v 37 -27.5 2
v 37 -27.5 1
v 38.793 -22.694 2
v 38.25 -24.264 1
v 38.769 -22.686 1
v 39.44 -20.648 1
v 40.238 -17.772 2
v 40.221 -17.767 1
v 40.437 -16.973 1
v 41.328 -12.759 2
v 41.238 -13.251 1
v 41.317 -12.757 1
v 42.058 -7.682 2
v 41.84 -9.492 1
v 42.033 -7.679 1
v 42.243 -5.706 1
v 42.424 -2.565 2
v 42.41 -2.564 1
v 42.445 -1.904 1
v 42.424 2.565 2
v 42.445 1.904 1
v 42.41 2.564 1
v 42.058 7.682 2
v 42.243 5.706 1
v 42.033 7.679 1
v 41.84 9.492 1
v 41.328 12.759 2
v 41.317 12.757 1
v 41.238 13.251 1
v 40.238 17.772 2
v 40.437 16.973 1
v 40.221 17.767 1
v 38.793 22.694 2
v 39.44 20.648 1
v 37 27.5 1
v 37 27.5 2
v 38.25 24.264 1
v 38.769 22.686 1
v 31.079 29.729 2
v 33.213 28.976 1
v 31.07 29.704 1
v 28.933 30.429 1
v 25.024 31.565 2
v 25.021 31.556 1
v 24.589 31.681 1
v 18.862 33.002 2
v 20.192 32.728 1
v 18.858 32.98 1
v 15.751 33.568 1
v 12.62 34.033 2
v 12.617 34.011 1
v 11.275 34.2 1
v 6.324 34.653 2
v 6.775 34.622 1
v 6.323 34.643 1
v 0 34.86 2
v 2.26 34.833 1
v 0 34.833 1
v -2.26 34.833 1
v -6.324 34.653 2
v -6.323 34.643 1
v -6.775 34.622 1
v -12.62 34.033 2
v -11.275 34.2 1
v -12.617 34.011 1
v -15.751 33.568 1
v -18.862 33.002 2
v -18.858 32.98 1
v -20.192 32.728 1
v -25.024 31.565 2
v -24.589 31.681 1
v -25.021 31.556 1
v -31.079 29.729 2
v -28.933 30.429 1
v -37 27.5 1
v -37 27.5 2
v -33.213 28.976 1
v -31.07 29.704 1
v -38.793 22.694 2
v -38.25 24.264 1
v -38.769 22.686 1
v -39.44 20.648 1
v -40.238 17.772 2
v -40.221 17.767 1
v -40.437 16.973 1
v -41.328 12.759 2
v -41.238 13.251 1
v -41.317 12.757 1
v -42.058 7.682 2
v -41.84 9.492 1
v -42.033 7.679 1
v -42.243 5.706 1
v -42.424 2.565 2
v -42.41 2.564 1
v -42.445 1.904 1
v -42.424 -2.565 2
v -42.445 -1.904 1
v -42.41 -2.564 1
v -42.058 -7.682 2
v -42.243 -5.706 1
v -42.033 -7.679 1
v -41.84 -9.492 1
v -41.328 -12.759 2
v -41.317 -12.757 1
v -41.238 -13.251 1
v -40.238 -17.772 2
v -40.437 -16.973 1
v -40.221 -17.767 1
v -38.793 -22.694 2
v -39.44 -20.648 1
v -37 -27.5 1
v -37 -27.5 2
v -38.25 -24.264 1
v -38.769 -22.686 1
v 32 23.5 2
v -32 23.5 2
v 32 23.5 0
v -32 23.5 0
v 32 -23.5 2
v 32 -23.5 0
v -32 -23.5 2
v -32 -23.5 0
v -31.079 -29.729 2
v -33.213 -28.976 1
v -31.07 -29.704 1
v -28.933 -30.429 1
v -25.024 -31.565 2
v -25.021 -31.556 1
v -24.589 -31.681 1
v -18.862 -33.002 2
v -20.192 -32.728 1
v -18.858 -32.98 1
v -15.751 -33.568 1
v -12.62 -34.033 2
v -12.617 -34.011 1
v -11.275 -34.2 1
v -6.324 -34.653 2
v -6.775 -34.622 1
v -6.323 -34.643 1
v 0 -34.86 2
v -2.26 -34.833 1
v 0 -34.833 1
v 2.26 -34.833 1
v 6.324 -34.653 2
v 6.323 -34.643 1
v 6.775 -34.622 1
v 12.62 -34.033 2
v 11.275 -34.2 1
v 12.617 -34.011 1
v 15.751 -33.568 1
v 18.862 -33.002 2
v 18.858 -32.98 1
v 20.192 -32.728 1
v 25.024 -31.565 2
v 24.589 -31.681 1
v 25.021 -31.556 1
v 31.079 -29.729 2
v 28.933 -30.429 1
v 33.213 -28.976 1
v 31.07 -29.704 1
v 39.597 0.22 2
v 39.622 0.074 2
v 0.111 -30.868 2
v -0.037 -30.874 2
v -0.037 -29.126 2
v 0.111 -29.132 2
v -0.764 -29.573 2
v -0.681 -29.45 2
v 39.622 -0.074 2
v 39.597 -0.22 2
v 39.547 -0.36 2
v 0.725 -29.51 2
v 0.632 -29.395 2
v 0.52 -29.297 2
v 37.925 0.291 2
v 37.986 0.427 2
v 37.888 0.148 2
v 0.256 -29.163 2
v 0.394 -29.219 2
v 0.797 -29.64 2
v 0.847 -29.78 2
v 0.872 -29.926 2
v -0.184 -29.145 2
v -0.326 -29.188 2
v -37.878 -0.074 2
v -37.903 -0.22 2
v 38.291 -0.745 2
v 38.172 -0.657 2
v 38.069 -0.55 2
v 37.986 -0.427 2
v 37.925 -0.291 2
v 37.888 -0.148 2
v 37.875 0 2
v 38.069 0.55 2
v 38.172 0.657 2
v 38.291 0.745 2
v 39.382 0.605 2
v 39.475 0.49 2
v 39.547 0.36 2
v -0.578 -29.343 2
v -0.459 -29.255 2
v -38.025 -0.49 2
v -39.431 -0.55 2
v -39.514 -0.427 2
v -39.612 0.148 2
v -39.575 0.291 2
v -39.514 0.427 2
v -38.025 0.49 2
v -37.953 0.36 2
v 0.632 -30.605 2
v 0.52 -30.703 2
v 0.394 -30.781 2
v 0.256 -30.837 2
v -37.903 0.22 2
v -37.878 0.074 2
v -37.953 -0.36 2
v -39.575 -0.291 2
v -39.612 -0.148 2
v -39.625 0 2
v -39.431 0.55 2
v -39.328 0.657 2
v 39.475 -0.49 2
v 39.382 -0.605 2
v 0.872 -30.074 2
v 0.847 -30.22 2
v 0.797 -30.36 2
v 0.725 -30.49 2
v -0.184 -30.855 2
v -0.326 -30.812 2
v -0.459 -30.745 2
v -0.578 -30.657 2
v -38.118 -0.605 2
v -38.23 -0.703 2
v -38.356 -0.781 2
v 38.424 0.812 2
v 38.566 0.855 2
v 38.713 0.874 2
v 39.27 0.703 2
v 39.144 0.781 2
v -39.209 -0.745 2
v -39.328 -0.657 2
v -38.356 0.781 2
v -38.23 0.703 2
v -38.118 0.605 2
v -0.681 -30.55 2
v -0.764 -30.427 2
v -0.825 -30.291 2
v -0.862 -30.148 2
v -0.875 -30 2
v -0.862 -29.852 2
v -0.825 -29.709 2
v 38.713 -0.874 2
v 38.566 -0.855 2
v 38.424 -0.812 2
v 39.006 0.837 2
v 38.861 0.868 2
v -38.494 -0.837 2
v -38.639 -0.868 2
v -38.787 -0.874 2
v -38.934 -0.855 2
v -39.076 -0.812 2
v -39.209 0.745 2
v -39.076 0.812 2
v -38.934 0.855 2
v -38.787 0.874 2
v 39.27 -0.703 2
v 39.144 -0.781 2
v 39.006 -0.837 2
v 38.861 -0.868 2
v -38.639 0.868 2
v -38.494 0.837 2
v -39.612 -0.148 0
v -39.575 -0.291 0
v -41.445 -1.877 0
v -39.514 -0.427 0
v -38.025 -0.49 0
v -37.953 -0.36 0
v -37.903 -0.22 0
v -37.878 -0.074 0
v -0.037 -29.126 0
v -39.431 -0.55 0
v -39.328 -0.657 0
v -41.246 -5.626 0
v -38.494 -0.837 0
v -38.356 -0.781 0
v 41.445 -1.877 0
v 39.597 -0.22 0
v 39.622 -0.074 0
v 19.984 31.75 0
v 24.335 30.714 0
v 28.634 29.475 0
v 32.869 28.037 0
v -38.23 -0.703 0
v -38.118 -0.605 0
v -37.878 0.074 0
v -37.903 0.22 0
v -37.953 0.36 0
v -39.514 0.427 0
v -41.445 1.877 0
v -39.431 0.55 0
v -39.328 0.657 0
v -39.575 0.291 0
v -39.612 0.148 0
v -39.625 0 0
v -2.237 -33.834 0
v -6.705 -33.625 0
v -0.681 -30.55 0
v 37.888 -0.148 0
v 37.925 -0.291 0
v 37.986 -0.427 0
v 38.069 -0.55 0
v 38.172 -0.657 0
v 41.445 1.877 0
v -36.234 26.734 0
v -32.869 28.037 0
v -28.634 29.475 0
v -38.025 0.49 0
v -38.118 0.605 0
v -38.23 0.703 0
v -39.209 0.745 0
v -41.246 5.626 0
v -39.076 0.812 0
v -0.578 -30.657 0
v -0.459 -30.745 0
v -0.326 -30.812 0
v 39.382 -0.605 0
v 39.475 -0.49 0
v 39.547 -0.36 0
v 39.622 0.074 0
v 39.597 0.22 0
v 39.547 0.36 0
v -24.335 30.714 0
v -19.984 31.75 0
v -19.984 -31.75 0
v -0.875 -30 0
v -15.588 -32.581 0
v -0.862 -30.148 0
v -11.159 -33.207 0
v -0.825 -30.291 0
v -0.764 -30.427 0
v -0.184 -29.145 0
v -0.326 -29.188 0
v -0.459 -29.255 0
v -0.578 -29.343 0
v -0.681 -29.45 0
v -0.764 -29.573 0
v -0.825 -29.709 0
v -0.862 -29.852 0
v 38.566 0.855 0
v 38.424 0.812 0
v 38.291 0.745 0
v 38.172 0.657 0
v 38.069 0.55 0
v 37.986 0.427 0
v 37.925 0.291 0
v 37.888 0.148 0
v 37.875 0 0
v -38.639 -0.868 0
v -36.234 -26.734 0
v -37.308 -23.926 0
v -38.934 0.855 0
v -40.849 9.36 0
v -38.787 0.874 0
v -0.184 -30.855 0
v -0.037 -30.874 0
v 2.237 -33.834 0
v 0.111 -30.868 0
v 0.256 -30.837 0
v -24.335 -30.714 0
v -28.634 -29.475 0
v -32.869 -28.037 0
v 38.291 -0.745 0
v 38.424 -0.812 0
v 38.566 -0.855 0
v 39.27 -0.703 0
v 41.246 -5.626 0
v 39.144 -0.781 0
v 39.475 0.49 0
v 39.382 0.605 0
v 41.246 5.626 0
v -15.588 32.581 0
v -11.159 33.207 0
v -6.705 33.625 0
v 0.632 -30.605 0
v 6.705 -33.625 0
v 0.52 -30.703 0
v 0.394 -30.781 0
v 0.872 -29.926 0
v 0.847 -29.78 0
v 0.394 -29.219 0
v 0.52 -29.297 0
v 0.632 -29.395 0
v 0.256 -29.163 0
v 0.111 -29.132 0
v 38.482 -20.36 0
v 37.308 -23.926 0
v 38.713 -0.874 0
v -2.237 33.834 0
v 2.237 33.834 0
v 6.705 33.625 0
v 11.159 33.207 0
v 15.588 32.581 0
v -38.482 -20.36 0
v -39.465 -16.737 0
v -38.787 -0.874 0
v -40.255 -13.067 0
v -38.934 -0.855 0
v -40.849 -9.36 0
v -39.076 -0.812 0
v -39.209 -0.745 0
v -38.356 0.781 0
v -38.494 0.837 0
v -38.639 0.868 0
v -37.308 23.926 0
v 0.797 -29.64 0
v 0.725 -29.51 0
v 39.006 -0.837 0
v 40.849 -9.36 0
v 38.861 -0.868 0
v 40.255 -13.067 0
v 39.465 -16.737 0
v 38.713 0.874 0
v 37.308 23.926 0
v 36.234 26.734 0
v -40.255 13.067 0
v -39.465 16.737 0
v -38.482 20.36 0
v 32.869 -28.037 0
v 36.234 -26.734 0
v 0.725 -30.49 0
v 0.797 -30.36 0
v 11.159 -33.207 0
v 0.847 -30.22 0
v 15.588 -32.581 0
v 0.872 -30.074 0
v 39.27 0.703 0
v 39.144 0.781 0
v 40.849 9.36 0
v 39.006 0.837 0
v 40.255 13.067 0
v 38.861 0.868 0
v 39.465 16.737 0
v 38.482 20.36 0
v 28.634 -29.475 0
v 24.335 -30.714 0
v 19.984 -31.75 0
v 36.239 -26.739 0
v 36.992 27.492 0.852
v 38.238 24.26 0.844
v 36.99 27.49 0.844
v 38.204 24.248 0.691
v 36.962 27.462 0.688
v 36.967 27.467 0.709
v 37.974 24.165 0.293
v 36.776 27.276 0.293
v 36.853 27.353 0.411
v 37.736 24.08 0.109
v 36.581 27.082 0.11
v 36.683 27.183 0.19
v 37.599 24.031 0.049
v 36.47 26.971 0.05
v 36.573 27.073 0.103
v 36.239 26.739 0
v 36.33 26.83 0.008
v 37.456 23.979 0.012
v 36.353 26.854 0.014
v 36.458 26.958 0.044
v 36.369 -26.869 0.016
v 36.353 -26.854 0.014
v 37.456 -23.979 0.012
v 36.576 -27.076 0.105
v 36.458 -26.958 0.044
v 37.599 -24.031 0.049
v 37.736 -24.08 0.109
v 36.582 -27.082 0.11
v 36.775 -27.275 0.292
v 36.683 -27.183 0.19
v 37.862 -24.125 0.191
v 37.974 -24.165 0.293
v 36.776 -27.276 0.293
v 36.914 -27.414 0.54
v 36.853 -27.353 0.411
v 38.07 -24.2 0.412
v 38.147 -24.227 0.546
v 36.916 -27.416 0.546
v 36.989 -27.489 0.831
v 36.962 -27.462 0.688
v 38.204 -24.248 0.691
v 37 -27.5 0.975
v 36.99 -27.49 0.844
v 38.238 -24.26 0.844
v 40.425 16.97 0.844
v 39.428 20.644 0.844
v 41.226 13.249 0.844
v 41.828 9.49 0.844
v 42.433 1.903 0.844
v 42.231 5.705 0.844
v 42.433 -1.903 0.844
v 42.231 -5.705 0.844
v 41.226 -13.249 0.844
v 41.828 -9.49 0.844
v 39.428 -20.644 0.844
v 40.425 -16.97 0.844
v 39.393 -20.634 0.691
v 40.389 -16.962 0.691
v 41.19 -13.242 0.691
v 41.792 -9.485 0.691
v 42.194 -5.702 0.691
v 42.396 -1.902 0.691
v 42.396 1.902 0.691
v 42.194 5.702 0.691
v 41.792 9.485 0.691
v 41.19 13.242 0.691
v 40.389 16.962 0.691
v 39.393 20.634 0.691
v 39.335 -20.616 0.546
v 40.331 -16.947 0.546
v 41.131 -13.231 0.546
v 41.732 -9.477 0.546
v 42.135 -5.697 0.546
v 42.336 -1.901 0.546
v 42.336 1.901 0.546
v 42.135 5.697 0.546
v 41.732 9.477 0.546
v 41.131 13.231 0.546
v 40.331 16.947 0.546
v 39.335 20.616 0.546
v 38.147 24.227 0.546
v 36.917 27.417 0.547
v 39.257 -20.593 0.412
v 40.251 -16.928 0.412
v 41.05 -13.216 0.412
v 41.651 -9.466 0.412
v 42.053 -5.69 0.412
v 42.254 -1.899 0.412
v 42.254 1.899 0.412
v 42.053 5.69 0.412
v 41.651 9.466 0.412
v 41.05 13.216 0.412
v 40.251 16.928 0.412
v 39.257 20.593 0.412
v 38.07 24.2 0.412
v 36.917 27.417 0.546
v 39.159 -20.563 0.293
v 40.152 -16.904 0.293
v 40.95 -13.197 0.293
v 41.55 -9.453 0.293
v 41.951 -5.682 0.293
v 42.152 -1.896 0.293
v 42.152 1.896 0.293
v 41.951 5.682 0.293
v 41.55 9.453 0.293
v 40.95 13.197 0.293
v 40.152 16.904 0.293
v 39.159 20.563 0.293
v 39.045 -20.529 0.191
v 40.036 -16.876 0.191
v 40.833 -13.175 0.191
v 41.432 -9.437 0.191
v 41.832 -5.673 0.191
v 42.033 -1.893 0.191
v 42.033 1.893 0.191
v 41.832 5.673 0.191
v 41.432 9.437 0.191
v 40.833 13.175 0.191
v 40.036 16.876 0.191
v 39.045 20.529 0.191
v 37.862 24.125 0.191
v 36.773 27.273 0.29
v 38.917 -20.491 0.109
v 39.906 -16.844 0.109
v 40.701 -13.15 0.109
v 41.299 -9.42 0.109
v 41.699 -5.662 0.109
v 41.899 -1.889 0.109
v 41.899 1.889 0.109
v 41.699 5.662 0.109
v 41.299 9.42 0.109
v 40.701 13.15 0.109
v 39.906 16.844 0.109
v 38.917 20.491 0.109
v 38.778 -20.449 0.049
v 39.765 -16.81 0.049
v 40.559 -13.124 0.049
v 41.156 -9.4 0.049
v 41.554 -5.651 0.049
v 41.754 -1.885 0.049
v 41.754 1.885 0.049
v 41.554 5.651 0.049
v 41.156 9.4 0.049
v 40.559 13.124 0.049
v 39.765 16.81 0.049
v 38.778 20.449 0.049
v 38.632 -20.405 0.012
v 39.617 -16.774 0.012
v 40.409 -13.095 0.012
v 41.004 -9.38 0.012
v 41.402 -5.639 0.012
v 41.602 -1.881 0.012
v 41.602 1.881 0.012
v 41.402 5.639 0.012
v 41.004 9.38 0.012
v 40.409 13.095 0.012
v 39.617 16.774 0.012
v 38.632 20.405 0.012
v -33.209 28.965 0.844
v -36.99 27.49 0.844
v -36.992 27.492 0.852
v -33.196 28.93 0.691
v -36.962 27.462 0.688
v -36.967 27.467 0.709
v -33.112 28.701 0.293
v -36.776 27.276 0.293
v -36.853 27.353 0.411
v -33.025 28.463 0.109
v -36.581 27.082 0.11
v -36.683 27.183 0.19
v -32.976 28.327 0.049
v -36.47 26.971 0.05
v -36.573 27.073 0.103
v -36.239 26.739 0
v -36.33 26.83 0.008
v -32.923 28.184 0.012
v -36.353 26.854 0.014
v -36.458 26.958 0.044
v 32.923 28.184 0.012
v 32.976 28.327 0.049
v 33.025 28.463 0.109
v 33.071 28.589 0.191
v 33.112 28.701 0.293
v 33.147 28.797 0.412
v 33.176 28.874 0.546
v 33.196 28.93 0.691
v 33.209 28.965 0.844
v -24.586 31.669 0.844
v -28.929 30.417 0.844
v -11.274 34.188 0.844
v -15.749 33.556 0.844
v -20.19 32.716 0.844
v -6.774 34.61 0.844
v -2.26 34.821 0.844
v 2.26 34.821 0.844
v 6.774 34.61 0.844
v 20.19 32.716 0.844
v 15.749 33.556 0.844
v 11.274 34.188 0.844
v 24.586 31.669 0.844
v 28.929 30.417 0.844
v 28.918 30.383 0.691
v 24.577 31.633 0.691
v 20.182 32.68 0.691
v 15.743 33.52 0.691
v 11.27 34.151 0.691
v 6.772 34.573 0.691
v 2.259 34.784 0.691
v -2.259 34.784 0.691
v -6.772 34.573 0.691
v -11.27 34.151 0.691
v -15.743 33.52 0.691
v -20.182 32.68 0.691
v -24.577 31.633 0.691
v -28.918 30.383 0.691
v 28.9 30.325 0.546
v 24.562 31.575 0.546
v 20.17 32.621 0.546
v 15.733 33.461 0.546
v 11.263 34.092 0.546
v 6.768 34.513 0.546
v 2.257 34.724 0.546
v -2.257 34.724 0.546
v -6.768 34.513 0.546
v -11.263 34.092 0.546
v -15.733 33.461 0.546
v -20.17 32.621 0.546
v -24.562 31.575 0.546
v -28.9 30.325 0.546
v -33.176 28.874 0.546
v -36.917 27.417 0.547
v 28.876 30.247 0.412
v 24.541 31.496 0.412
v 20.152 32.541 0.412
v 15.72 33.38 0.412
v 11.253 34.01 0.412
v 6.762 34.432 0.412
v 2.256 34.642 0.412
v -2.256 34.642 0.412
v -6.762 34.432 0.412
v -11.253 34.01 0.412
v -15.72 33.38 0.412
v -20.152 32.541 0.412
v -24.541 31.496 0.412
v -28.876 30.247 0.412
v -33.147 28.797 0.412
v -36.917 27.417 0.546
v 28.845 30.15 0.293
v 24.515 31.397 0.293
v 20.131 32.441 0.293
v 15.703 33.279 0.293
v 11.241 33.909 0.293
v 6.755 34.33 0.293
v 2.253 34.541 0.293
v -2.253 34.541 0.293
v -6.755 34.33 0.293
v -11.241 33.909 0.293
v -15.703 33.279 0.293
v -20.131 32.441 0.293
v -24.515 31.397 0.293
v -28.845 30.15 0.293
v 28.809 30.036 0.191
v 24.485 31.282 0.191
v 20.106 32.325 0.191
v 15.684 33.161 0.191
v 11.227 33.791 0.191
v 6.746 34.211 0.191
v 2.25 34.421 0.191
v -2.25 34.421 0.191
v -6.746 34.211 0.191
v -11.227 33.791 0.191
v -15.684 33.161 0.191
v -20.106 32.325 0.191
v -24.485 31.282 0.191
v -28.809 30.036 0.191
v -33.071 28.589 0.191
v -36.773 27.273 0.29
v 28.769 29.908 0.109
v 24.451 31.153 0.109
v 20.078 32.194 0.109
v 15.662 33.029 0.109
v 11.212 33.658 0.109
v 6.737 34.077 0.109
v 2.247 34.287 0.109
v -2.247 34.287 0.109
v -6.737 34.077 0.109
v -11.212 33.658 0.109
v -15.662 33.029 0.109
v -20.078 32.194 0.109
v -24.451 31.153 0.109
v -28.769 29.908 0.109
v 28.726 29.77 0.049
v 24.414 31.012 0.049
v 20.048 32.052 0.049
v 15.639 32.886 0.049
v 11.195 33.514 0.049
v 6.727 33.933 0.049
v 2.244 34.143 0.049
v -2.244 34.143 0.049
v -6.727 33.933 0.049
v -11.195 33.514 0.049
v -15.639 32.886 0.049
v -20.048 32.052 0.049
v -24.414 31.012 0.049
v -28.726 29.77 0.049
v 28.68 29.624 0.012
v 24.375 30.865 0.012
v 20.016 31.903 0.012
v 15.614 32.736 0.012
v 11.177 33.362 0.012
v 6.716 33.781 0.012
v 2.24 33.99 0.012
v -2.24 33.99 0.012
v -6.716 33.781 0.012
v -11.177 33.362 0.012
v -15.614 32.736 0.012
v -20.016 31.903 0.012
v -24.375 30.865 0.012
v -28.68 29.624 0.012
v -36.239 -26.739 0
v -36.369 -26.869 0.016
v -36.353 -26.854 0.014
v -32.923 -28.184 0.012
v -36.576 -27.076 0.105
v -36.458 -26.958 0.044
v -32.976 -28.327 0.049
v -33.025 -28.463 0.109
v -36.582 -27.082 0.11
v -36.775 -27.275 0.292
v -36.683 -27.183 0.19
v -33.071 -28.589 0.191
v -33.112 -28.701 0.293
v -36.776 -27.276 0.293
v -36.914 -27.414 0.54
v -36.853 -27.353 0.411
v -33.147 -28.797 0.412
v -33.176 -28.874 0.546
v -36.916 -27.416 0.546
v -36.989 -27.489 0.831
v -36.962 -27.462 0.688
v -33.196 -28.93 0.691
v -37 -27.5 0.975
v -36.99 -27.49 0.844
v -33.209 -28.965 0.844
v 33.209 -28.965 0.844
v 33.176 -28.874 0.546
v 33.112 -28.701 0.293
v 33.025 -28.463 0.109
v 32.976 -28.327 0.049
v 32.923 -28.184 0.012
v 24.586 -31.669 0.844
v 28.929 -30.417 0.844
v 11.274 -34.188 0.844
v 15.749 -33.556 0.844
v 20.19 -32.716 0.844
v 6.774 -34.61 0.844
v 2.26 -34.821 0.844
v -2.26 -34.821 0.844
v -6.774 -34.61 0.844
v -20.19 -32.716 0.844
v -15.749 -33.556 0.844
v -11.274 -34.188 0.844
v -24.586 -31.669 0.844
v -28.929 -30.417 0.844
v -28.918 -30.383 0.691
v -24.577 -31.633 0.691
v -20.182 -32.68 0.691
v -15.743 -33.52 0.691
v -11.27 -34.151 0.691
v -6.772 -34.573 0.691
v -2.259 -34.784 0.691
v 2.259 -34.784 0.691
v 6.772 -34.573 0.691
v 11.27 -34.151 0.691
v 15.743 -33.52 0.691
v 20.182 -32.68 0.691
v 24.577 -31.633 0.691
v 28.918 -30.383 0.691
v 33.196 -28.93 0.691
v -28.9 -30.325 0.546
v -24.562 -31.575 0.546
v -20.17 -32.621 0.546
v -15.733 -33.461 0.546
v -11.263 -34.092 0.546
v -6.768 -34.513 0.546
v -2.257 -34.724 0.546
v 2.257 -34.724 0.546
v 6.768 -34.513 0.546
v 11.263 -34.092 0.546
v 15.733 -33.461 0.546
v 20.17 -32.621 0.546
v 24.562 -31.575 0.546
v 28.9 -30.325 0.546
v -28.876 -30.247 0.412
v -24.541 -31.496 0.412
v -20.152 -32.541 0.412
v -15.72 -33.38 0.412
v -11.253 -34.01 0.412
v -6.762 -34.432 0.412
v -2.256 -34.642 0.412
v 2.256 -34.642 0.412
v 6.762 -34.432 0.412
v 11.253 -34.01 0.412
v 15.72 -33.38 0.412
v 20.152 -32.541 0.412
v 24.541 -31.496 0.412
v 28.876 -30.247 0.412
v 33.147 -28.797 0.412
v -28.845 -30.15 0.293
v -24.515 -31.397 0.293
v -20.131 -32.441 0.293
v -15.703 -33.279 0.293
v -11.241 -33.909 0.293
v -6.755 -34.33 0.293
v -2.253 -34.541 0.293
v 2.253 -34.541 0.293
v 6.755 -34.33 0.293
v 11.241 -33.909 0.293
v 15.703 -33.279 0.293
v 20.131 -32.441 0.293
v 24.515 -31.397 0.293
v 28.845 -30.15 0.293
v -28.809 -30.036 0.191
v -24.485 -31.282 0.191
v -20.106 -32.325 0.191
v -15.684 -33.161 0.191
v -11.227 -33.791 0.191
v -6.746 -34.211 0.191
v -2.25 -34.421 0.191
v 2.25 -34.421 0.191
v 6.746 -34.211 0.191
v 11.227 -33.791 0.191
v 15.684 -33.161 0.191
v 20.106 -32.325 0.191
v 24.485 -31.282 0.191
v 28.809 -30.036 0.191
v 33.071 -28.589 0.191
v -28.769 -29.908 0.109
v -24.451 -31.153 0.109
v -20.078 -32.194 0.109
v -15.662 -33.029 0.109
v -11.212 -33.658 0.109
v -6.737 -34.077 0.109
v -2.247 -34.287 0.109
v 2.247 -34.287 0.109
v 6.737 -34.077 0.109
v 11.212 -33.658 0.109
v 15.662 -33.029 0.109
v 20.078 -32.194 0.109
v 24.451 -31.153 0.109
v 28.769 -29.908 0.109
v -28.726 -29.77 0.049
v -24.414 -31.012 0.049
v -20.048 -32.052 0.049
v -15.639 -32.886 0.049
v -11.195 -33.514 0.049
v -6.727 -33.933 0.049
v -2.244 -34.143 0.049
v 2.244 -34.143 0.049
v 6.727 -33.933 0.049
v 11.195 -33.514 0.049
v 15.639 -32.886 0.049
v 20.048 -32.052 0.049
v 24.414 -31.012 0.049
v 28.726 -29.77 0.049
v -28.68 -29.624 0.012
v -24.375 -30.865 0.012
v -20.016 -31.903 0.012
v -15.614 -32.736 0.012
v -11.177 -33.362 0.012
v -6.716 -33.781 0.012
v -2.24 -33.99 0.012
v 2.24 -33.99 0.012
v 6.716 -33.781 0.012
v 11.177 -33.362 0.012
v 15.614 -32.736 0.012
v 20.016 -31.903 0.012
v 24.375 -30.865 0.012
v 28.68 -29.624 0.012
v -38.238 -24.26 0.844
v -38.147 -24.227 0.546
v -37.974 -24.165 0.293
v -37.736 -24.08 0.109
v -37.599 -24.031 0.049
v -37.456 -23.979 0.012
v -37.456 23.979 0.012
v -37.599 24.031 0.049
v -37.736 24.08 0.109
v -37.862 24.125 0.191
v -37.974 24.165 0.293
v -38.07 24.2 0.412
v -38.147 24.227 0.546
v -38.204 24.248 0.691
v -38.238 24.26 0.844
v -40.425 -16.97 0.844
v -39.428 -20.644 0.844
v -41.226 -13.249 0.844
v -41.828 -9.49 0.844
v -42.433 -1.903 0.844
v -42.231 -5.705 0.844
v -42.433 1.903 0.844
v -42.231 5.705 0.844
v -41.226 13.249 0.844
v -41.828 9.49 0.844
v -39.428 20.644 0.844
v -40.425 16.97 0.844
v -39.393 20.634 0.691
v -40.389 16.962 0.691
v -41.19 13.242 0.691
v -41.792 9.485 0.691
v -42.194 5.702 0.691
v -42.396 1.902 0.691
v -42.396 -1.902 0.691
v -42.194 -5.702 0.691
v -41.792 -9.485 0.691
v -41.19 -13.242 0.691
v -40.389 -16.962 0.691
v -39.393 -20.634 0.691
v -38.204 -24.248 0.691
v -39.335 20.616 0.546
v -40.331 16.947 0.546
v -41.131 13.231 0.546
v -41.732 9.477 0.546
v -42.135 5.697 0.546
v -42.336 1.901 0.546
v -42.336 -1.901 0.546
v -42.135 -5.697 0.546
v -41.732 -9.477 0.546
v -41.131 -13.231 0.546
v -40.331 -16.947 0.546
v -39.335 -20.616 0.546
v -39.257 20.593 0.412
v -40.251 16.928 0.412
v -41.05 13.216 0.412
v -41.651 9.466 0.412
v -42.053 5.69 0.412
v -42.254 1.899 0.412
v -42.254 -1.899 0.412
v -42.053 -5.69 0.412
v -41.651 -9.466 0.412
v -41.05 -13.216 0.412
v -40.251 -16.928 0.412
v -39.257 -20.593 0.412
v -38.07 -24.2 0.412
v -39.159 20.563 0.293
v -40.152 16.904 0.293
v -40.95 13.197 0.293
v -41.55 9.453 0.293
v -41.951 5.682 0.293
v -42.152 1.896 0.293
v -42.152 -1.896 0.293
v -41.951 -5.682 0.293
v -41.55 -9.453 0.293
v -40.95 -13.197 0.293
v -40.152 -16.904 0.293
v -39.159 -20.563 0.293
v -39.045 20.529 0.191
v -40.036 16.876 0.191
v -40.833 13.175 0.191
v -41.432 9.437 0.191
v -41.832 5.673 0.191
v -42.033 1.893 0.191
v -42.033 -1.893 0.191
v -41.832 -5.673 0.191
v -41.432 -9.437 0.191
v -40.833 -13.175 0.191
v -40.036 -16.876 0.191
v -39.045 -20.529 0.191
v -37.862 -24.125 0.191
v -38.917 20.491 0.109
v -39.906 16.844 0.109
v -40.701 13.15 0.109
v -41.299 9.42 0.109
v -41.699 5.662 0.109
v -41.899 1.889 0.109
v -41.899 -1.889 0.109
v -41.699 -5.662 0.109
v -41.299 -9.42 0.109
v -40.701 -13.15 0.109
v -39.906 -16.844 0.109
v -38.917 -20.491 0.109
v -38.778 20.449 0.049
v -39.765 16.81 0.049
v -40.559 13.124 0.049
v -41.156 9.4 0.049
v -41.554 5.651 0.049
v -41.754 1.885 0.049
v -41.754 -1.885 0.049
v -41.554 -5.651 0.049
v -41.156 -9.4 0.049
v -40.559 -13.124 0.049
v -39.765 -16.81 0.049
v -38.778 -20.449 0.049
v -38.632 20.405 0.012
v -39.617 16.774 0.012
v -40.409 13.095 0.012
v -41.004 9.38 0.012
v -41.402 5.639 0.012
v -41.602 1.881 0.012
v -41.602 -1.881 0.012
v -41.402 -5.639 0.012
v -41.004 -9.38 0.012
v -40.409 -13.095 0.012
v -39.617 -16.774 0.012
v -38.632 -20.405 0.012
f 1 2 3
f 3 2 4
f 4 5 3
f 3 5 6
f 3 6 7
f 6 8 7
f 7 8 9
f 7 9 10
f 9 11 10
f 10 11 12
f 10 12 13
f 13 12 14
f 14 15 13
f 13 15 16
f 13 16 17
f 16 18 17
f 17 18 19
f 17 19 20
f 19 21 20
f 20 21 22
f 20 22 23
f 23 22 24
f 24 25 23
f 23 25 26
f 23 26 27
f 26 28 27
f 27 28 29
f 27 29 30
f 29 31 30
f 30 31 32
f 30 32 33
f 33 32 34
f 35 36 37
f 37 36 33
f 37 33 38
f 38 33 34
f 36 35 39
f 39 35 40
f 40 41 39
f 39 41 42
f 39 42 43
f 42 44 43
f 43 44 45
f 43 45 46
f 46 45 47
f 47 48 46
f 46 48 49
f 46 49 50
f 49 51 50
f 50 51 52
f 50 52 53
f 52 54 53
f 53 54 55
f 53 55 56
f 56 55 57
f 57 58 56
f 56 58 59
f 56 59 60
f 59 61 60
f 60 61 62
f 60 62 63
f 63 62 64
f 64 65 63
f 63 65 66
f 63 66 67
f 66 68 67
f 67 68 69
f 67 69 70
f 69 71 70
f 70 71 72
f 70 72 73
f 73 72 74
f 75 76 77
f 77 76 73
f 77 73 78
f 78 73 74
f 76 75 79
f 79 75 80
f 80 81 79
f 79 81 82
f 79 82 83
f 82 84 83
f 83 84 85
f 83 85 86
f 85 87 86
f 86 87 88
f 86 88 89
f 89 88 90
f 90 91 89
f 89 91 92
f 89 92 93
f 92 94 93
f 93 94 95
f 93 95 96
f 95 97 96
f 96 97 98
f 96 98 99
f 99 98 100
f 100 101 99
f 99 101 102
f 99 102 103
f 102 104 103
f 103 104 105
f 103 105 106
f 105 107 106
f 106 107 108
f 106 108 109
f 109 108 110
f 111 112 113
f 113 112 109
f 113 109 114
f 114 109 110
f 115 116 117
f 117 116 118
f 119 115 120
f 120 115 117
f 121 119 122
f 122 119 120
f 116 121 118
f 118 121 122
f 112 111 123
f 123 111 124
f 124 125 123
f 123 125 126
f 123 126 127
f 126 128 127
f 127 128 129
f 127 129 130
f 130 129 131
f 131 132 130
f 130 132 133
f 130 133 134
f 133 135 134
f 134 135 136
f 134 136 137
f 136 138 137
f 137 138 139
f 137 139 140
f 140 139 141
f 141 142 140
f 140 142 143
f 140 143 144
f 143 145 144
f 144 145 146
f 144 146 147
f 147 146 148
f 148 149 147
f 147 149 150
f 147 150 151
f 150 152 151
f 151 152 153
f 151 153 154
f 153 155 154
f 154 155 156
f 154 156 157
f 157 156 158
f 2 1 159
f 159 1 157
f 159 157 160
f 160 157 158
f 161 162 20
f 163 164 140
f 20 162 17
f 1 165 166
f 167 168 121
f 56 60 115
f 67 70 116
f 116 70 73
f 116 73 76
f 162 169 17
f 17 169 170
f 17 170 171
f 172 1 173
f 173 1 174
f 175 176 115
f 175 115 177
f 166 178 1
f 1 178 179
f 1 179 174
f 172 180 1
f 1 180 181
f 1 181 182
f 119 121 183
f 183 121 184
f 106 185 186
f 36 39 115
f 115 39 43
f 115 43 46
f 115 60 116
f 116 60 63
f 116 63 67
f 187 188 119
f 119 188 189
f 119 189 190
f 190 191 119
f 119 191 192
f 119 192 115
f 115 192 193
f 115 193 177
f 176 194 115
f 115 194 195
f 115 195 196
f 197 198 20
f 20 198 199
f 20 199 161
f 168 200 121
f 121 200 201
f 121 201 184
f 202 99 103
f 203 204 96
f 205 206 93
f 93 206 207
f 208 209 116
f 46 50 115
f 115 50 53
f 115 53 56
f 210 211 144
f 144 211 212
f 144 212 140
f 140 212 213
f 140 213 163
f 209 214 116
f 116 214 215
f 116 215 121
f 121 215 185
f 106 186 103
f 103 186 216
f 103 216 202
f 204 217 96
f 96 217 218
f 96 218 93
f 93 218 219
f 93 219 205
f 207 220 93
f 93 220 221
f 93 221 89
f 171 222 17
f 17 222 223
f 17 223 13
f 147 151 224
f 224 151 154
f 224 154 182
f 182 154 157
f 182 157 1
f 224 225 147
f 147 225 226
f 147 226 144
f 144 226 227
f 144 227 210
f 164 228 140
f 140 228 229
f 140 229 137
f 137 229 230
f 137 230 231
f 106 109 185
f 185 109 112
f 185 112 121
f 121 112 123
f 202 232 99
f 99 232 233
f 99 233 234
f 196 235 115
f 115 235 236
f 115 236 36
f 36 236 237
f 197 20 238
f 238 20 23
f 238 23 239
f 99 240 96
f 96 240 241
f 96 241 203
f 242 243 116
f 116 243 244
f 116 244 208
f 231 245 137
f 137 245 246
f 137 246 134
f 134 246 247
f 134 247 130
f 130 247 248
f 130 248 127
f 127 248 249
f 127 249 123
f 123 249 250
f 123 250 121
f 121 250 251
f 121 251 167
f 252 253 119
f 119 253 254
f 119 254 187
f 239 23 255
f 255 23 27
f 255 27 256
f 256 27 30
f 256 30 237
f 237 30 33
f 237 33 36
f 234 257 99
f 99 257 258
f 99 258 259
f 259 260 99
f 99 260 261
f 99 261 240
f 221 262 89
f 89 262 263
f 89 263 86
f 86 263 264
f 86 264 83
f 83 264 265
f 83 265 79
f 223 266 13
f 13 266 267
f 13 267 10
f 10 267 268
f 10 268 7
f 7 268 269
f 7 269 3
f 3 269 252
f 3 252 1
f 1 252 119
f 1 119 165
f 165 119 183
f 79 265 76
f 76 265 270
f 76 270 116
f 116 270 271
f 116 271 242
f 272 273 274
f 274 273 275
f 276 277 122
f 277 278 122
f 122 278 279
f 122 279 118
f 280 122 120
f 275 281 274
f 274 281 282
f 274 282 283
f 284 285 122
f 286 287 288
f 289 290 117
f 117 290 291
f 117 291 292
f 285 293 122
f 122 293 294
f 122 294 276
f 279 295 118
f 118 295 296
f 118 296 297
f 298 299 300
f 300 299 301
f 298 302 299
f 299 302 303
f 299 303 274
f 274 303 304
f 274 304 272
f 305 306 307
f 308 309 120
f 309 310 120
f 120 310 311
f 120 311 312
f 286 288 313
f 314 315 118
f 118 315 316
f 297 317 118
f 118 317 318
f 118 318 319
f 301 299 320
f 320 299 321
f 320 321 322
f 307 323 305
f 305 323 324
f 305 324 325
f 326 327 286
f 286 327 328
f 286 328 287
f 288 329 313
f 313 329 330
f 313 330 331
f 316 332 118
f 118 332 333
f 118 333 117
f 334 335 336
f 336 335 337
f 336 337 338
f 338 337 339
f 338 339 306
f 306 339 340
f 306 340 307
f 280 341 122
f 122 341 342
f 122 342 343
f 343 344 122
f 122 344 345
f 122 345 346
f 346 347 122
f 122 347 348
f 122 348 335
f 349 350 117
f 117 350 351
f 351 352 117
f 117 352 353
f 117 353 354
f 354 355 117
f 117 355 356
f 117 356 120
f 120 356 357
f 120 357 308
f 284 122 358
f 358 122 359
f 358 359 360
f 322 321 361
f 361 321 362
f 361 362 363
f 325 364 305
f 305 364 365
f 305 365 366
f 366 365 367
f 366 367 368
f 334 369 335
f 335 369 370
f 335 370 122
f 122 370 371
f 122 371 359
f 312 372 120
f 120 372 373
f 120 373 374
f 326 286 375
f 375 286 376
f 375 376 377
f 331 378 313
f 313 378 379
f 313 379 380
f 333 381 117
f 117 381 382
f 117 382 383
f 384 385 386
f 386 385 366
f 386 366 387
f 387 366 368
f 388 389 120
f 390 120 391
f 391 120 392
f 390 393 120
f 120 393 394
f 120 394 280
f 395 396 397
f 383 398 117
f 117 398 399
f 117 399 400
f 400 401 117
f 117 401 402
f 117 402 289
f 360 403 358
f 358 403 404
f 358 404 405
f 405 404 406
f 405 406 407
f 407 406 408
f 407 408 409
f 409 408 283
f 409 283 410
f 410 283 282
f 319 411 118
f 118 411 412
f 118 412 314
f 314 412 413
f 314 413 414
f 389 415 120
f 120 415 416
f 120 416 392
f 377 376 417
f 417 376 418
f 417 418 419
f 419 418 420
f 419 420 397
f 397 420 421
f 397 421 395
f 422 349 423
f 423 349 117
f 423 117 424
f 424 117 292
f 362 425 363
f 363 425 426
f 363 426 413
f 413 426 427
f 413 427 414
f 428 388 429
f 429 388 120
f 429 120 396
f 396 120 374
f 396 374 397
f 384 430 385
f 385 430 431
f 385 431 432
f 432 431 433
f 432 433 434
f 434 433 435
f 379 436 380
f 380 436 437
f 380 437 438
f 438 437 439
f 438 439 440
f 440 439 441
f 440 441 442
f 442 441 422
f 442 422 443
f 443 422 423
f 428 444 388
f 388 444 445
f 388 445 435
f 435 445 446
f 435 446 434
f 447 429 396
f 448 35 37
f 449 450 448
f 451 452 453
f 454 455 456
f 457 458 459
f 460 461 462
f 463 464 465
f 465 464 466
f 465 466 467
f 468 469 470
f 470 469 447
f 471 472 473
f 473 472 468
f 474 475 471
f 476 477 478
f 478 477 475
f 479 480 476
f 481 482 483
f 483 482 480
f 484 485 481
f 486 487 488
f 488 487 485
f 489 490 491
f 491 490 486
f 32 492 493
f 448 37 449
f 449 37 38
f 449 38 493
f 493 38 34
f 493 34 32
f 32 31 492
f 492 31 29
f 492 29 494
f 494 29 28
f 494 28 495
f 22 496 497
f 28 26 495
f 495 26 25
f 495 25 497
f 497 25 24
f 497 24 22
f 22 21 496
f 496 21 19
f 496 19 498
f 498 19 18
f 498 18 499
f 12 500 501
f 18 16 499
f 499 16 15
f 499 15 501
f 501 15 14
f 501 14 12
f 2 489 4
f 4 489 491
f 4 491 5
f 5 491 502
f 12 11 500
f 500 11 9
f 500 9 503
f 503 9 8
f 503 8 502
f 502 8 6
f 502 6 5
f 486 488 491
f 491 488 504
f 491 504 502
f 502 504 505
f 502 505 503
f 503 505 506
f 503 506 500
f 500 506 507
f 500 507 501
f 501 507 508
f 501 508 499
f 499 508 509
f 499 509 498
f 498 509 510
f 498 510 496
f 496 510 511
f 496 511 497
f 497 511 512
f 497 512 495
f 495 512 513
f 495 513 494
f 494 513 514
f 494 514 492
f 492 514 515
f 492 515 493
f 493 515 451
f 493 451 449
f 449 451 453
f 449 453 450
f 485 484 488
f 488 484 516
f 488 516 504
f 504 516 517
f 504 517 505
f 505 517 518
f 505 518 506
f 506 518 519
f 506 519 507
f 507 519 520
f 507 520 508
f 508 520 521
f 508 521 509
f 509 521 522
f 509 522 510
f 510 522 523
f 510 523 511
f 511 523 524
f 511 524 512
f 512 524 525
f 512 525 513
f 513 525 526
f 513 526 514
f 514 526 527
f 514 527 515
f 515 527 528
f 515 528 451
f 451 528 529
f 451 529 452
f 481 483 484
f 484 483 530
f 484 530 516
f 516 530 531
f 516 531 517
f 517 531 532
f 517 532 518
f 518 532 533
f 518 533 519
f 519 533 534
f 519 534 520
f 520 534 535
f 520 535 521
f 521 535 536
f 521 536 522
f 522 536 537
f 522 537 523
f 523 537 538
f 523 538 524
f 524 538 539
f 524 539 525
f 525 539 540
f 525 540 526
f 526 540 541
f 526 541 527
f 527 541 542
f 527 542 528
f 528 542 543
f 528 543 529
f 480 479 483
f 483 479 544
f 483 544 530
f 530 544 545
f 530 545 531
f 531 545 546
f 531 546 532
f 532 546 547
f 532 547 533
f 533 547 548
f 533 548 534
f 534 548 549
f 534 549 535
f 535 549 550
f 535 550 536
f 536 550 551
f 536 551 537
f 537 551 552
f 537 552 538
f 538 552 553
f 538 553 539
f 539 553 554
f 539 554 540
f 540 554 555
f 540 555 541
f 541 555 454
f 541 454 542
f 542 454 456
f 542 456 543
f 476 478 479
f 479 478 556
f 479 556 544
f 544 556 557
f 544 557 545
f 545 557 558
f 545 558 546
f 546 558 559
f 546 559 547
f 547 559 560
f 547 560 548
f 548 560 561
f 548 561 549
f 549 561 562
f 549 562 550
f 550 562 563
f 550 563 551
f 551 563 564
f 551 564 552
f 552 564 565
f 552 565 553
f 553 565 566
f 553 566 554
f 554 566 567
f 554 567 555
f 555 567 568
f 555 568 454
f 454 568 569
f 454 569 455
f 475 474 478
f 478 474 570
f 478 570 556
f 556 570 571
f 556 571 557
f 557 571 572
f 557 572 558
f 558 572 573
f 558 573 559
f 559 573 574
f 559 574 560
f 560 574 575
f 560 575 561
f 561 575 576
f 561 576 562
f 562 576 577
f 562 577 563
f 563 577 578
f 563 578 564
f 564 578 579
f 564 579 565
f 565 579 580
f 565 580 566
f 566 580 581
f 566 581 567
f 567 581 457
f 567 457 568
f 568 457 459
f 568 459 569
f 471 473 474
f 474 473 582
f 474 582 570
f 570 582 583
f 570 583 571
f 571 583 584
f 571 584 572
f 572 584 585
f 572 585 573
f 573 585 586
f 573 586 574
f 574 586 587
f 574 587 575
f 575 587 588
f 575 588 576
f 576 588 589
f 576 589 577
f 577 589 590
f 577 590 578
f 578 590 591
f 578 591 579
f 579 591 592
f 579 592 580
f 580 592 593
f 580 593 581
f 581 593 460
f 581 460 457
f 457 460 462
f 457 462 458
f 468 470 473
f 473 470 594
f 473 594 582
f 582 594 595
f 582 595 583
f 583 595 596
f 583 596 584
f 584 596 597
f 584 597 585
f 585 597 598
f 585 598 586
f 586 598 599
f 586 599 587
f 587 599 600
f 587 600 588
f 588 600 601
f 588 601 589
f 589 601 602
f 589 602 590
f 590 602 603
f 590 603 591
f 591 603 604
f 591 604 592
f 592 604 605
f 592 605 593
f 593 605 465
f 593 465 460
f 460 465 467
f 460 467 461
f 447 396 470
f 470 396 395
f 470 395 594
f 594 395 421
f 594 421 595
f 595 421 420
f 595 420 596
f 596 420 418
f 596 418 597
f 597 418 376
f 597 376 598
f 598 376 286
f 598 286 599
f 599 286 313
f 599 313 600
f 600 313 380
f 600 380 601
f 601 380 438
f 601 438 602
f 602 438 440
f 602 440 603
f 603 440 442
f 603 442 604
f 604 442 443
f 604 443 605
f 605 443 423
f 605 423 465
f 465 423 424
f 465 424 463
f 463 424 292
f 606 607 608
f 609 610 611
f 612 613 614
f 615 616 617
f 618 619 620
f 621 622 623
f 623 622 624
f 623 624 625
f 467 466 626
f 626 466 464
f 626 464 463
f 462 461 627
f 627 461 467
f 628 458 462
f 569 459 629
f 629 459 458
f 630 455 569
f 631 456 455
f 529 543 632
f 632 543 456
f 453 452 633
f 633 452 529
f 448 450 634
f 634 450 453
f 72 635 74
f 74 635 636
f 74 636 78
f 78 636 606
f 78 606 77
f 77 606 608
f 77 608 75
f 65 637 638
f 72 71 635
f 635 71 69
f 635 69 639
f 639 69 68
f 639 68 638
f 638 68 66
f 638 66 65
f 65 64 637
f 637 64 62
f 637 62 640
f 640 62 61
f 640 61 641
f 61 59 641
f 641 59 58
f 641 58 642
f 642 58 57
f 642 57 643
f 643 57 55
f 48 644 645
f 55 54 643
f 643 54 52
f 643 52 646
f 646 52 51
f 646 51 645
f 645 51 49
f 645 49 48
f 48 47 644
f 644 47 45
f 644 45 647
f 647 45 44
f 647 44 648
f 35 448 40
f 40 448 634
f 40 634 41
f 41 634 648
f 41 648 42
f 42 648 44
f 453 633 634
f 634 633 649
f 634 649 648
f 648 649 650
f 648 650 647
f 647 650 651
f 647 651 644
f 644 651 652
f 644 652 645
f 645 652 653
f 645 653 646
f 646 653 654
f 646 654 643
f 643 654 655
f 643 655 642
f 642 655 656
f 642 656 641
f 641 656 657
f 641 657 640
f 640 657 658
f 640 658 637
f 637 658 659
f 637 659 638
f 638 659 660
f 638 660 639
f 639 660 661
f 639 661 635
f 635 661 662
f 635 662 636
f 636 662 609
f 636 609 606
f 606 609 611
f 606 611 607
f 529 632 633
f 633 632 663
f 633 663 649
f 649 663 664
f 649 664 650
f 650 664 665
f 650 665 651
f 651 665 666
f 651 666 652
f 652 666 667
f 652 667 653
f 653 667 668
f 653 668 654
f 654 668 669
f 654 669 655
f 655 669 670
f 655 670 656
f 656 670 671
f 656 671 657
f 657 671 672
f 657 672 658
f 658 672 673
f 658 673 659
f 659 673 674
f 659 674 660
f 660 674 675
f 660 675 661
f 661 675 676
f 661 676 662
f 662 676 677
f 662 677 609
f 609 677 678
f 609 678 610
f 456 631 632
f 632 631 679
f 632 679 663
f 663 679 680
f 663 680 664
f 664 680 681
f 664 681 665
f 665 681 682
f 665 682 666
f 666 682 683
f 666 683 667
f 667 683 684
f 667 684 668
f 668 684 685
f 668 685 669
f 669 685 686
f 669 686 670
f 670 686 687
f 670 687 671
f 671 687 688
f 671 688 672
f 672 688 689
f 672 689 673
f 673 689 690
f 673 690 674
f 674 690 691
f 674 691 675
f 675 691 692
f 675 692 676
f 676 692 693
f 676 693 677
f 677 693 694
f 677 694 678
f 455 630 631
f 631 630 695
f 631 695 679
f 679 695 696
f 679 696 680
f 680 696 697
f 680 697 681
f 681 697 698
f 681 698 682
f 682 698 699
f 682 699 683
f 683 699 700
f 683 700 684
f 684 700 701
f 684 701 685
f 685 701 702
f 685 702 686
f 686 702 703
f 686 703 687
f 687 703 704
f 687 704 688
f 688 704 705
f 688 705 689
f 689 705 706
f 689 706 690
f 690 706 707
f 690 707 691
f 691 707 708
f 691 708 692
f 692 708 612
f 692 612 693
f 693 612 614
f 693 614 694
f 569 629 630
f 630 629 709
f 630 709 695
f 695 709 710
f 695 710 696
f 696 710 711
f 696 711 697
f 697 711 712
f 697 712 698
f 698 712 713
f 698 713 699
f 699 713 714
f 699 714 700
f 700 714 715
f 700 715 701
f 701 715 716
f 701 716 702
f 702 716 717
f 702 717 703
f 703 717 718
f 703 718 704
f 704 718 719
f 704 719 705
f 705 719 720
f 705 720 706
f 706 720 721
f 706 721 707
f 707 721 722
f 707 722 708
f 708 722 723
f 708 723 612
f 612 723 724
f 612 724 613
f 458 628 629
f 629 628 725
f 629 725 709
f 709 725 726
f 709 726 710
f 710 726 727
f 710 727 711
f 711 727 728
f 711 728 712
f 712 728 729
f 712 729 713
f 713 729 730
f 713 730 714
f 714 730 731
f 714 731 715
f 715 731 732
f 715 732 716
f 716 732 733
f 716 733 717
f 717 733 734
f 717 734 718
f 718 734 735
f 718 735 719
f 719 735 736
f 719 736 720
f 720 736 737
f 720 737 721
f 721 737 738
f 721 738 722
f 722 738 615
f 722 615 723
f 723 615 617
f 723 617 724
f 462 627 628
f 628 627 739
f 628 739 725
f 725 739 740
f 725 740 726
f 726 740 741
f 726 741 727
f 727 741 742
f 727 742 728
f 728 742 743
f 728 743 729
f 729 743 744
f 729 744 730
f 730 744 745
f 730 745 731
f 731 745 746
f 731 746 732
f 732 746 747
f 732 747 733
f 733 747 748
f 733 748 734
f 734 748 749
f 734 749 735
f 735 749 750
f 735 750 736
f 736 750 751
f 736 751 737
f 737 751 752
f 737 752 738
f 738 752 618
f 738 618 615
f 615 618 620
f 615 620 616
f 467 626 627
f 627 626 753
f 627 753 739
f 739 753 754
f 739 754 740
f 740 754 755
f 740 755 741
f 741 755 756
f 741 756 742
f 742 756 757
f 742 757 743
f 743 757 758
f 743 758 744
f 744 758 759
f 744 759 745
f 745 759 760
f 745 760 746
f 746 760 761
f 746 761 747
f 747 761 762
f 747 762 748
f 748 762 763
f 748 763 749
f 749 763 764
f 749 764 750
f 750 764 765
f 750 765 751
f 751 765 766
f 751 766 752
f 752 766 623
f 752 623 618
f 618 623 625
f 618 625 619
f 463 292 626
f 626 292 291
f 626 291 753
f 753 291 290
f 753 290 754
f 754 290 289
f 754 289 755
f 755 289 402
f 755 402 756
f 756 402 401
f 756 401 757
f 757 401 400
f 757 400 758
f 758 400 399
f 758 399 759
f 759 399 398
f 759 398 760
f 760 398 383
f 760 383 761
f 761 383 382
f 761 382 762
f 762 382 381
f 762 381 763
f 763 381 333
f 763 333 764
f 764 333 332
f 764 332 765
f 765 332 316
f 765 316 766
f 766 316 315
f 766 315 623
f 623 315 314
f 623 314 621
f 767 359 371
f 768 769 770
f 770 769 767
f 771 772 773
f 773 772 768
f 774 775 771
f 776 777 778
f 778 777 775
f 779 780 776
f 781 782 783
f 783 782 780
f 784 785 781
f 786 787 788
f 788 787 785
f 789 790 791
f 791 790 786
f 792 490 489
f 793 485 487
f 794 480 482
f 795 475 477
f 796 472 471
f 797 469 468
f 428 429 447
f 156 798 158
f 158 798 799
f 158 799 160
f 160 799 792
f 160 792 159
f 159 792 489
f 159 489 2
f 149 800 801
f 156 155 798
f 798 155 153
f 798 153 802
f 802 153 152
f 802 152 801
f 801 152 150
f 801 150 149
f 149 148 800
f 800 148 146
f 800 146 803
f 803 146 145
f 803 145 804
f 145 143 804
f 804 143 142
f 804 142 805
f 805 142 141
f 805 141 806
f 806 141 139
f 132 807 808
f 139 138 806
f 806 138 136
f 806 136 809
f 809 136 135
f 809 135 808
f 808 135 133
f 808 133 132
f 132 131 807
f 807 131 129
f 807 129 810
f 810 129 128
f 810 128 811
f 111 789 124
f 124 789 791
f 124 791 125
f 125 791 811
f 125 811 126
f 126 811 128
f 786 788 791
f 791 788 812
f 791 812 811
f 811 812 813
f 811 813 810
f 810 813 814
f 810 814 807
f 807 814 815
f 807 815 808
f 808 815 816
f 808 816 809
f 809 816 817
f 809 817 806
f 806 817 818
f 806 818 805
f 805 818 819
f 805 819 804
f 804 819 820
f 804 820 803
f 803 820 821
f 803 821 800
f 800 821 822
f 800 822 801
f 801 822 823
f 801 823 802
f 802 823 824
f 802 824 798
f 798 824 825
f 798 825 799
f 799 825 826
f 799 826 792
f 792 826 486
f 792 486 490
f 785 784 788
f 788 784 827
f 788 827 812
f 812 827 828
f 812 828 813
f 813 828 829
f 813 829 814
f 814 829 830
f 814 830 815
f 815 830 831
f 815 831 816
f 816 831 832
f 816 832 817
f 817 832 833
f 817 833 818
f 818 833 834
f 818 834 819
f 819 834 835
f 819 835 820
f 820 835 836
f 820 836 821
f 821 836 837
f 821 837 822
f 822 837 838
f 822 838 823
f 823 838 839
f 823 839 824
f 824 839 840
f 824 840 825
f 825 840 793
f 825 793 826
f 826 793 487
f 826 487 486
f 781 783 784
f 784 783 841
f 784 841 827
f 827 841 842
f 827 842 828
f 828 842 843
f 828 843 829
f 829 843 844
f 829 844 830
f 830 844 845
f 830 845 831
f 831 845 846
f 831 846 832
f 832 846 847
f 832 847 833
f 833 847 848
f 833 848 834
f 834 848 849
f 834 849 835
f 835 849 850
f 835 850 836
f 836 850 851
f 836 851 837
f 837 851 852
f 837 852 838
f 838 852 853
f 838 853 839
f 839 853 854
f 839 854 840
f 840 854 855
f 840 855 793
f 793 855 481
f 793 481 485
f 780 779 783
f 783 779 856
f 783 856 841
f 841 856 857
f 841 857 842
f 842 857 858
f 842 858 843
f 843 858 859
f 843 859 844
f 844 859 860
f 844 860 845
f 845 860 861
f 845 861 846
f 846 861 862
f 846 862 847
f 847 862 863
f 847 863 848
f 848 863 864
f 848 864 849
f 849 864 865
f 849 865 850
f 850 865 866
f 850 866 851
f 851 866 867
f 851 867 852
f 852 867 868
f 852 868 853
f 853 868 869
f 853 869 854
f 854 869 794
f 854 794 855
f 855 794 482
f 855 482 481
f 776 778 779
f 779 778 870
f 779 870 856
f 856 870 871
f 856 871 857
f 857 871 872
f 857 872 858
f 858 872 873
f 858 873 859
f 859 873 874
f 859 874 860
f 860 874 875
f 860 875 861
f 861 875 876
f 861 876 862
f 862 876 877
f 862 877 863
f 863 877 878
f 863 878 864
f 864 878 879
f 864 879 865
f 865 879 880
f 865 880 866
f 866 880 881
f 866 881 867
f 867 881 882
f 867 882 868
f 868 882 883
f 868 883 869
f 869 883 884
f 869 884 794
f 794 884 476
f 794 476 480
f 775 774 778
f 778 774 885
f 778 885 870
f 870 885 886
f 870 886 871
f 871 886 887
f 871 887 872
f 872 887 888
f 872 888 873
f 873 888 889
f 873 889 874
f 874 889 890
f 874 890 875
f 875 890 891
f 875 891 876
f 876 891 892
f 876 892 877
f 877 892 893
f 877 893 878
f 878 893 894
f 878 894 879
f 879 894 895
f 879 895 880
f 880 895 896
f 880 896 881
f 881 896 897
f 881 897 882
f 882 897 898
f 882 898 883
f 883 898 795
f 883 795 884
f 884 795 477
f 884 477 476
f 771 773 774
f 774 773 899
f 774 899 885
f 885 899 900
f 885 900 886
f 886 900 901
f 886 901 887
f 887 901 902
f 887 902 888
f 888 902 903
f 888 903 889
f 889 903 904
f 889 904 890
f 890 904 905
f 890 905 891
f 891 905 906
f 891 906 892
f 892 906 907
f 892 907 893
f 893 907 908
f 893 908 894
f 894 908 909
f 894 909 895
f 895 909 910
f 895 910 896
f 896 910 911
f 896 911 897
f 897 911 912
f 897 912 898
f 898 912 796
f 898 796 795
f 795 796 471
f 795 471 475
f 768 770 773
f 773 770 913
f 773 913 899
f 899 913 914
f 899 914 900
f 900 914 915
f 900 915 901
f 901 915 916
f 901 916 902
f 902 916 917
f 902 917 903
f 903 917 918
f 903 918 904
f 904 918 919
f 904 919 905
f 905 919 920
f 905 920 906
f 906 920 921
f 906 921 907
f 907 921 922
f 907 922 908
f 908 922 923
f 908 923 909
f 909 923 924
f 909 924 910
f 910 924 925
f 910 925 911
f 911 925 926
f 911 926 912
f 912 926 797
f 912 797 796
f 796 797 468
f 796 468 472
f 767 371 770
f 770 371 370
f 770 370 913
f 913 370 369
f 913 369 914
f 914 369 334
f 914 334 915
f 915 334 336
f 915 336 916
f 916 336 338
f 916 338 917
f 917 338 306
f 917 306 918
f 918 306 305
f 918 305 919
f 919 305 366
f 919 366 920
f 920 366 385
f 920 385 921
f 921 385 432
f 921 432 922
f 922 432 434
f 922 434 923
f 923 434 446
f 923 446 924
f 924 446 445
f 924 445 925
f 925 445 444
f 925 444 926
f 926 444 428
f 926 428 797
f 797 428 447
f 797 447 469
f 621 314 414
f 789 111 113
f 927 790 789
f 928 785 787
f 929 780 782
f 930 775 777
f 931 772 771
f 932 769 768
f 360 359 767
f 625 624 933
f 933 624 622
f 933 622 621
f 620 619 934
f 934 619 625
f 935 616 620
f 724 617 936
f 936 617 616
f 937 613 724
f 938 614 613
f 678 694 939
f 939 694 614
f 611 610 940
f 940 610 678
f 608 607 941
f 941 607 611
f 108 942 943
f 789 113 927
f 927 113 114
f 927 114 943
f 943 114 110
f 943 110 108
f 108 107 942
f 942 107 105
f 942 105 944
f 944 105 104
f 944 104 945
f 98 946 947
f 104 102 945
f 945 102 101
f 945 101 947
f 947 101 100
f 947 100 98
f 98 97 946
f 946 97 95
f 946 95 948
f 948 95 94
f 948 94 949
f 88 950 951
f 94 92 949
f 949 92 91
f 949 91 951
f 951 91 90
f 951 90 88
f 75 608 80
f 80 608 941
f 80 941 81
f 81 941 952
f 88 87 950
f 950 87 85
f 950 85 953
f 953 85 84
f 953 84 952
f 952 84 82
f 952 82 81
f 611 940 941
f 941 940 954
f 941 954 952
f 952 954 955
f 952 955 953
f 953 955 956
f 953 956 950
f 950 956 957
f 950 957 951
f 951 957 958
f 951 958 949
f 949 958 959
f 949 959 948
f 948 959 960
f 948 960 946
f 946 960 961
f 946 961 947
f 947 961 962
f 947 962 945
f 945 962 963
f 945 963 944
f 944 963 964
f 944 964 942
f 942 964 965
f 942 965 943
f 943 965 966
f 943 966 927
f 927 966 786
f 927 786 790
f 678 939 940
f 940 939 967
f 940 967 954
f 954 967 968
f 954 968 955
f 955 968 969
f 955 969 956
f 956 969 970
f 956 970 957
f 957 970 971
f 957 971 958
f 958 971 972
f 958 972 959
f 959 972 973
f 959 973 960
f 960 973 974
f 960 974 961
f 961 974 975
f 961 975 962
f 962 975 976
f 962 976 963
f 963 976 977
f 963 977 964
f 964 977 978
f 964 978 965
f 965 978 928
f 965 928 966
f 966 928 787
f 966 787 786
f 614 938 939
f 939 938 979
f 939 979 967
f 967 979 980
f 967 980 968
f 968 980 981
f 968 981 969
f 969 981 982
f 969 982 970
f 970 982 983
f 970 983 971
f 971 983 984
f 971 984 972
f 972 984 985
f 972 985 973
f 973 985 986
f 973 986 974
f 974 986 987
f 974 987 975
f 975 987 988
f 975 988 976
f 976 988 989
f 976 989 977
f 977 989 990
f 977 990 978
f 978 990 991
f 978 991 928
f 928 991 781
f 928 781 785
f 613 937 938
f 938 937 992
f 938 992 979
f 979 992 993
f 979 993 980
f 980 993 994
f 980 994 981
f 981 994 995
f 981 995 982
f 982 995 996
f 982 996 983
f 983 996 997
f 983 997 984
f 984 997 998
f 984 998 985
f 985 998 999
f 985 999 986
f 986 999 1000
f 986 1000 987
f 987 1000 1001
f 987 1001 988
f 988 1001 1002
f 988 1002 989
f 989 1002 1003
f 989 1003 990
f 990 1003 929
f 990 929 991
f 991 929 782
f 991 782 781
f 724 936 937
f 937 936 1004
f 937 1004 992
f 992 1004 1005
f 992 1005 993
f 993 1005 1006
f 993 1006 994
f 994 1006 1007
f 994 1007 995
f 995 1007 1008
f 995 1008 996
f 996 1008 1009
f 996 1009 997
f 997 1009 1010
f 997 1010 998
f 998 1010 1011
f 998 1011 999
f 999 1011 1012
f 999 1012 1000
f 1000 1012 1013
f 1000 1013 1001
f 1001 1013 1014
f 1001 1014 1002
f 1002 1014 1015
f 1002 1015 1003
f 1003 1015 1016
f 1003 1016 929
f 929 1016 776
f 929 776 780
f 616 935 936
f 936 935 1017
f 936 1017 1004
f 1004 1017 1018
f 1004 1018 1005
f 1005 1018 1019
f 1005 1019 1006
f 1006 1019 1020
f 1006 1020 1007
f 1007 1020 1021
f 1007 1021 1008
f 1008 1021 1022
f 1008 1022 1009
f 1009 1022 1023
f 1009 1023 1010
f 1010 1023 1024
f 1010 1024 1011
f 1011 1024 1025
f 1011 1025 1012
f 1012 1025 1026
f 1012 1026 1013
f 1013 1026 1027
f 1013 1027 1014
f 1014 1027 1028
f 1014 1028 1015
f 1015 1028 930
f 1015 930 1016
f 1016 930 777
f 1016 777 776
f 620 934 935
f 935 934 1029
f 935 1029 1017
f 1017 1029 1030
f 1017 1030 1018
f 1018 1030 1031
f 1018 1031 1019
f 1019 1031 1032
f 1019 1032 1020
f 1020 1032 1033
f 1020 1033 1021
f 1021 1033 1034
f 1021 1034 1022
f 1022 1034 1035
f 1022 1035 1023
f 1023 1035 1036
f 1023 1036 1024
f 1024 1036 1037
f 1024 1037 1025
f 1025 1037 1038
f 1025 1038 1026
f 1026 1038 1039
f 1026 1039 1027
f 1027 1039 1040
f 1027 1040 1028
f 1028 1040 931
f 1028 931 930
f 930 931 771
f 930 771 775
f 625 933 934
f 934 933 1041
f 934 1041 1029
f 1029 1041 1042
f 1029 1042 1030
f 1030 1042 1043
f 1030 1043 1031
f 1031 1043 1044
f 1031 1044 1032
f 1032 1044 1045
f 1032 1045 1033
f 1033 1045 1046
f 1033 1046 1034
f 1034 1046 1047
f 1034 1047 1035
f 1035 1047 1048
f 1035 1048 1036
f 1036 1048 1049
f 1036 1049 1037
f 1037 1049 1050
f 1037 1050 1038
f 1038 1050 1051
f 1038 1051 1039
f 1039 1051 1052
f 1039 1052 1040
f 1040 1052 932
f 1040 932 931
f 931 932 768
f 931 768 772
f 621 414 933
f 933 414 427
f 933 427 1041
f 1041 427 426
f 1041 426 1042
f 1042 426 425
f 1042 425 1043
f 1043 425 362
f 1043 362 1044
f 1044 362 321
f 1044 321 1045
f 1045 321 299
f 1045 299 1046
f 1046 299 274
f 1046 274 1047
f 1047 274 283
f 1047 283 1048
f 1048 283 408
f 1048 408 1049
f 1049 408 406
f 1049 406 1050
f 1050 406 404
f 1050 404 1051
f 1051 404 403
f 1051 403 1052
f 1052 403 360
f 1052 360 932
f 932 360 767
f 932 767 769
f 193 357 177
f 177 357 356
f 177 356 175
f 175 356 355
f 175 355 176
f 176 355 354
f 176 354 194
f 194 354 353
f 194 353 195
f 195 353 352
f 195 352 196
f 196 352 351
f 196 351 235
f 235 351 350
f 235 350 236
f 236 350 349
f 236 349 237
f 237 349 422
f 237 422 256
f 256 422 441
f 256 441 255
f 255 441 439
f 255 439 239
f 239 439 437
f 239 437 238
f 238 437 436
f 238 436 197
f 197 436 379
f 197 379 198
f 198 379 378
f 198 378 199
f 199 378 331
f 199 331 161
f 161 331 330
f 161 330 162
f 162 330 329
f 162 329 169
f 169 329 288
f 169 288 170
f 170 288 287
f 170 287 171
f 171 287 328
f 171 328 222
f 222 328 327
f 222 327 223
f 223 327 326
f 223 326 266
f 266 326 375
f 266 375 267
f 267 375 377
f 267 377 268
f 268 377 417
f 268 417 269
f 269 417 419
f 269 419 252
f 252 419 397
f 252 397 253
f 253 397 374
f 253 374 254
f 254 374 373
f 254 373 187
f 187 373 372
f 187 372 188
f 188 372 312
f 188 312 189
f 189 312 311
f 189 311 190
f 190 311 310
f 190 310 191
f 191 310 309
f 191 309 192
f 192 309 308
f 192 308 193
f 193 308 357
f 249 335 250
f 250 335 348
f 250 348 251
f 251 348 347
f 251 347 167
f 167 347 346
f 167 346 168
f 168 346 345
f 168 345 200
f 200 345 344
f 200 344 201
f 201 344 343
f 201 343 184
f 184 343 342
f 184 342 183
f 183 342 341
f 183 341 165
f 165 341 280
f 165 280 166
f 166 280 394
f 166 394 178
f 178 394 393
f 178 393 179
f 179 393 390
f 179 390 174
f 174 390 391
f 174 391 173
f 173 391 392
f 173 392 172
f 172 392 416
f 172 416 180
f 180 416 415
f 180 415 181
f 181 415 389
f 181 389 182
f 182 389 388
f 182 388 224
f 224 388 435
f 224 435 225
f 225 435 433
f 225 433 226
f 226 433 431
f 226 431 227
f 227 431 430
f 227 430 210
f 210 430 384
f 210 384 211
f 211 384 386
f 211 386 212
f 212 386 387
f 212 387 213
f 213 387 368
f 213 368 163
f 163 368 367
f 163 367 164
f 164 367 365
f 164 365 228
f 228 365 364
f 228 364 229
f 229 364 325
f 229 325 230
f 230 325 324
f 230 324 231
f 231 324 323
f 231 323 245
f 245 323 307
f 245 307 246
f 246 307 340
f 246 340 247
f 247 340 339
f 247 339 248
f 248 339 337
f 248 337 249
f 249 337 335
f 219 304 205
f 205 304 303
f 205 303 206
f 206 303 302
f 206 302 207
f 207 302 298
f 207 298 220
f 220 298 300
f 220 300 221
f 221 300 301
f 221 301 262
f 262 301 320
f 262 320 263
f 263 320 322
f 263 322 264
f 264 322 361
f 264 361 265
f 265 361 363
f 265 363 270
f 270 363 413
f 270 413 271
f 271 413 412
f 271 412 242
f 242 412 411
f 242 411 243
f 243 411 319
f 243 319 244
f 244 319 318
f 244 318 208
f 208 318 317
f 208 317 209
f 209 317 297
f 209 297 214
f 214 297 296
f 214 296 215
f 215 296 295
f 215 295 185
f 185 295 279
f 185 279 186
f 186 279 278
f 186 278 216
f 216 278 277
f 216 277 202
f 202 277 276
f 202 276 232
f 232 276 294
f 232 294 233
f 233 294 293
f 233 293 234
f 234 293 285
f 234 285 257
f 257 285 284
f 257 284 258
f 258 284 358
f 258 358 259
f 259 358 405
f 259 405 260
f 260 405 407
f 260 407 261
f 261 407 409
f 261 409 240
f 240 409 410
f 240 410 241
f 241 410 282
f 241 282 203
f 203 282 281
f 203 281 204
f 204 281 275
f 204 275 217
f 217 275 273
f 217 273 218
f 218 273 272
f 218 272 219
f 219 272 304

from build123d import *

# Parameters (mm, degrees)
SKETCH1_W           = 64
SKETCH1_H           = 47
BOSS_EXTRUDE1_DEPTH = 2
FILLET1_R           = 1
SKETCH2_R           = 0.875
CUT_EXTRUDE1_DEPTH  = 55.981008251


with BuildPart() as part:
    # Sketch1 → Boss-Extrude1 (new body)
    # profile 1 of 2: a face of its own
    with BuildSketch(Plane.XY):
        with BuildLine():
            ThreePointArc((37, 27.5), (42.470090103, 0), (37, -27.5))
            ThreePointArc((37, -27.5), (0, -34.859757593), (-37, -27.5))
            ThreePointArc((-37, -27.5), (-42.470090103, 0), (-37, 27.5))
            ThreePointArc((-37, 27.5), (0, 34.859757593), (37, 27.5))
        make_face()
        with BuildLine():
            ThreePointArc((36, -25.5), (40.468092327, 0), (36, 25.5))
            ThreePointArc((36, 25.5), (0, 32.351769079), (-36, 25.5))
            ThreePointArc((-36, 25.5), (-40.468092327, 0), (-36, -25.5))
            ThreePointArc((-36, -25.5), (0, -32.351769079), (36, -25.5))
        make_face(mode=Mode.SUBTRACT)
    # profile 2 of 2: a face of its own
    with BuildSketch(Plane.XY):
        with BuildLine():
            ThreePointArc((36, -25.5), (0, -32.351769079), (-36, -25.5))
            ThreePointArc((-36, -25.5), (-40.468092327, 0), (-36, 25.5))
            ThreePointArc((-36, 25.5), (0, 32.351769079), (36, 25.5))
            ThreePointArc((36, 25.5), (40.468092327, 0), (36, -25.5))
        make_face()
        Rectangle(SKETCH1_W, SKETCH1_H, mode=Mode.SUBTRACT)
    extrude(amount=BOSS_EXTRUDE1_DEPTH)

    # Fillet1
    fillet1_edges = [part.edges().sort_by_distance(p)[0] for p in [
        (-42.470090103, 0, 0),
        (0, -34.859757593, 0),
        (0, 34.859757593, 0),
        (42.470090103, 0, 0),
    ]]
    fillet(fillet1_edges, radius=FILLET1_R)

    # Sketch2 → Cut-Extrude1 (cut, through all)
    with BuildSketch(Plane(origin=(0, 0, 0), x_dir=(-1, 0, 0), z_dir=(0, 0, -1))):
        with Locations((-38.75, 0)):
            Circle(SKETCH2_R)
        with Locations((0, -30)):
            Circle(SKETCH2_R)
        with Locations((38.75, 0)):
            Circle(SKETCH2_R)
    extrude(amount=-CUT_EXTRUDE1_DEPTH, mode=Mode.SUBTRACT)


solid = part.part
